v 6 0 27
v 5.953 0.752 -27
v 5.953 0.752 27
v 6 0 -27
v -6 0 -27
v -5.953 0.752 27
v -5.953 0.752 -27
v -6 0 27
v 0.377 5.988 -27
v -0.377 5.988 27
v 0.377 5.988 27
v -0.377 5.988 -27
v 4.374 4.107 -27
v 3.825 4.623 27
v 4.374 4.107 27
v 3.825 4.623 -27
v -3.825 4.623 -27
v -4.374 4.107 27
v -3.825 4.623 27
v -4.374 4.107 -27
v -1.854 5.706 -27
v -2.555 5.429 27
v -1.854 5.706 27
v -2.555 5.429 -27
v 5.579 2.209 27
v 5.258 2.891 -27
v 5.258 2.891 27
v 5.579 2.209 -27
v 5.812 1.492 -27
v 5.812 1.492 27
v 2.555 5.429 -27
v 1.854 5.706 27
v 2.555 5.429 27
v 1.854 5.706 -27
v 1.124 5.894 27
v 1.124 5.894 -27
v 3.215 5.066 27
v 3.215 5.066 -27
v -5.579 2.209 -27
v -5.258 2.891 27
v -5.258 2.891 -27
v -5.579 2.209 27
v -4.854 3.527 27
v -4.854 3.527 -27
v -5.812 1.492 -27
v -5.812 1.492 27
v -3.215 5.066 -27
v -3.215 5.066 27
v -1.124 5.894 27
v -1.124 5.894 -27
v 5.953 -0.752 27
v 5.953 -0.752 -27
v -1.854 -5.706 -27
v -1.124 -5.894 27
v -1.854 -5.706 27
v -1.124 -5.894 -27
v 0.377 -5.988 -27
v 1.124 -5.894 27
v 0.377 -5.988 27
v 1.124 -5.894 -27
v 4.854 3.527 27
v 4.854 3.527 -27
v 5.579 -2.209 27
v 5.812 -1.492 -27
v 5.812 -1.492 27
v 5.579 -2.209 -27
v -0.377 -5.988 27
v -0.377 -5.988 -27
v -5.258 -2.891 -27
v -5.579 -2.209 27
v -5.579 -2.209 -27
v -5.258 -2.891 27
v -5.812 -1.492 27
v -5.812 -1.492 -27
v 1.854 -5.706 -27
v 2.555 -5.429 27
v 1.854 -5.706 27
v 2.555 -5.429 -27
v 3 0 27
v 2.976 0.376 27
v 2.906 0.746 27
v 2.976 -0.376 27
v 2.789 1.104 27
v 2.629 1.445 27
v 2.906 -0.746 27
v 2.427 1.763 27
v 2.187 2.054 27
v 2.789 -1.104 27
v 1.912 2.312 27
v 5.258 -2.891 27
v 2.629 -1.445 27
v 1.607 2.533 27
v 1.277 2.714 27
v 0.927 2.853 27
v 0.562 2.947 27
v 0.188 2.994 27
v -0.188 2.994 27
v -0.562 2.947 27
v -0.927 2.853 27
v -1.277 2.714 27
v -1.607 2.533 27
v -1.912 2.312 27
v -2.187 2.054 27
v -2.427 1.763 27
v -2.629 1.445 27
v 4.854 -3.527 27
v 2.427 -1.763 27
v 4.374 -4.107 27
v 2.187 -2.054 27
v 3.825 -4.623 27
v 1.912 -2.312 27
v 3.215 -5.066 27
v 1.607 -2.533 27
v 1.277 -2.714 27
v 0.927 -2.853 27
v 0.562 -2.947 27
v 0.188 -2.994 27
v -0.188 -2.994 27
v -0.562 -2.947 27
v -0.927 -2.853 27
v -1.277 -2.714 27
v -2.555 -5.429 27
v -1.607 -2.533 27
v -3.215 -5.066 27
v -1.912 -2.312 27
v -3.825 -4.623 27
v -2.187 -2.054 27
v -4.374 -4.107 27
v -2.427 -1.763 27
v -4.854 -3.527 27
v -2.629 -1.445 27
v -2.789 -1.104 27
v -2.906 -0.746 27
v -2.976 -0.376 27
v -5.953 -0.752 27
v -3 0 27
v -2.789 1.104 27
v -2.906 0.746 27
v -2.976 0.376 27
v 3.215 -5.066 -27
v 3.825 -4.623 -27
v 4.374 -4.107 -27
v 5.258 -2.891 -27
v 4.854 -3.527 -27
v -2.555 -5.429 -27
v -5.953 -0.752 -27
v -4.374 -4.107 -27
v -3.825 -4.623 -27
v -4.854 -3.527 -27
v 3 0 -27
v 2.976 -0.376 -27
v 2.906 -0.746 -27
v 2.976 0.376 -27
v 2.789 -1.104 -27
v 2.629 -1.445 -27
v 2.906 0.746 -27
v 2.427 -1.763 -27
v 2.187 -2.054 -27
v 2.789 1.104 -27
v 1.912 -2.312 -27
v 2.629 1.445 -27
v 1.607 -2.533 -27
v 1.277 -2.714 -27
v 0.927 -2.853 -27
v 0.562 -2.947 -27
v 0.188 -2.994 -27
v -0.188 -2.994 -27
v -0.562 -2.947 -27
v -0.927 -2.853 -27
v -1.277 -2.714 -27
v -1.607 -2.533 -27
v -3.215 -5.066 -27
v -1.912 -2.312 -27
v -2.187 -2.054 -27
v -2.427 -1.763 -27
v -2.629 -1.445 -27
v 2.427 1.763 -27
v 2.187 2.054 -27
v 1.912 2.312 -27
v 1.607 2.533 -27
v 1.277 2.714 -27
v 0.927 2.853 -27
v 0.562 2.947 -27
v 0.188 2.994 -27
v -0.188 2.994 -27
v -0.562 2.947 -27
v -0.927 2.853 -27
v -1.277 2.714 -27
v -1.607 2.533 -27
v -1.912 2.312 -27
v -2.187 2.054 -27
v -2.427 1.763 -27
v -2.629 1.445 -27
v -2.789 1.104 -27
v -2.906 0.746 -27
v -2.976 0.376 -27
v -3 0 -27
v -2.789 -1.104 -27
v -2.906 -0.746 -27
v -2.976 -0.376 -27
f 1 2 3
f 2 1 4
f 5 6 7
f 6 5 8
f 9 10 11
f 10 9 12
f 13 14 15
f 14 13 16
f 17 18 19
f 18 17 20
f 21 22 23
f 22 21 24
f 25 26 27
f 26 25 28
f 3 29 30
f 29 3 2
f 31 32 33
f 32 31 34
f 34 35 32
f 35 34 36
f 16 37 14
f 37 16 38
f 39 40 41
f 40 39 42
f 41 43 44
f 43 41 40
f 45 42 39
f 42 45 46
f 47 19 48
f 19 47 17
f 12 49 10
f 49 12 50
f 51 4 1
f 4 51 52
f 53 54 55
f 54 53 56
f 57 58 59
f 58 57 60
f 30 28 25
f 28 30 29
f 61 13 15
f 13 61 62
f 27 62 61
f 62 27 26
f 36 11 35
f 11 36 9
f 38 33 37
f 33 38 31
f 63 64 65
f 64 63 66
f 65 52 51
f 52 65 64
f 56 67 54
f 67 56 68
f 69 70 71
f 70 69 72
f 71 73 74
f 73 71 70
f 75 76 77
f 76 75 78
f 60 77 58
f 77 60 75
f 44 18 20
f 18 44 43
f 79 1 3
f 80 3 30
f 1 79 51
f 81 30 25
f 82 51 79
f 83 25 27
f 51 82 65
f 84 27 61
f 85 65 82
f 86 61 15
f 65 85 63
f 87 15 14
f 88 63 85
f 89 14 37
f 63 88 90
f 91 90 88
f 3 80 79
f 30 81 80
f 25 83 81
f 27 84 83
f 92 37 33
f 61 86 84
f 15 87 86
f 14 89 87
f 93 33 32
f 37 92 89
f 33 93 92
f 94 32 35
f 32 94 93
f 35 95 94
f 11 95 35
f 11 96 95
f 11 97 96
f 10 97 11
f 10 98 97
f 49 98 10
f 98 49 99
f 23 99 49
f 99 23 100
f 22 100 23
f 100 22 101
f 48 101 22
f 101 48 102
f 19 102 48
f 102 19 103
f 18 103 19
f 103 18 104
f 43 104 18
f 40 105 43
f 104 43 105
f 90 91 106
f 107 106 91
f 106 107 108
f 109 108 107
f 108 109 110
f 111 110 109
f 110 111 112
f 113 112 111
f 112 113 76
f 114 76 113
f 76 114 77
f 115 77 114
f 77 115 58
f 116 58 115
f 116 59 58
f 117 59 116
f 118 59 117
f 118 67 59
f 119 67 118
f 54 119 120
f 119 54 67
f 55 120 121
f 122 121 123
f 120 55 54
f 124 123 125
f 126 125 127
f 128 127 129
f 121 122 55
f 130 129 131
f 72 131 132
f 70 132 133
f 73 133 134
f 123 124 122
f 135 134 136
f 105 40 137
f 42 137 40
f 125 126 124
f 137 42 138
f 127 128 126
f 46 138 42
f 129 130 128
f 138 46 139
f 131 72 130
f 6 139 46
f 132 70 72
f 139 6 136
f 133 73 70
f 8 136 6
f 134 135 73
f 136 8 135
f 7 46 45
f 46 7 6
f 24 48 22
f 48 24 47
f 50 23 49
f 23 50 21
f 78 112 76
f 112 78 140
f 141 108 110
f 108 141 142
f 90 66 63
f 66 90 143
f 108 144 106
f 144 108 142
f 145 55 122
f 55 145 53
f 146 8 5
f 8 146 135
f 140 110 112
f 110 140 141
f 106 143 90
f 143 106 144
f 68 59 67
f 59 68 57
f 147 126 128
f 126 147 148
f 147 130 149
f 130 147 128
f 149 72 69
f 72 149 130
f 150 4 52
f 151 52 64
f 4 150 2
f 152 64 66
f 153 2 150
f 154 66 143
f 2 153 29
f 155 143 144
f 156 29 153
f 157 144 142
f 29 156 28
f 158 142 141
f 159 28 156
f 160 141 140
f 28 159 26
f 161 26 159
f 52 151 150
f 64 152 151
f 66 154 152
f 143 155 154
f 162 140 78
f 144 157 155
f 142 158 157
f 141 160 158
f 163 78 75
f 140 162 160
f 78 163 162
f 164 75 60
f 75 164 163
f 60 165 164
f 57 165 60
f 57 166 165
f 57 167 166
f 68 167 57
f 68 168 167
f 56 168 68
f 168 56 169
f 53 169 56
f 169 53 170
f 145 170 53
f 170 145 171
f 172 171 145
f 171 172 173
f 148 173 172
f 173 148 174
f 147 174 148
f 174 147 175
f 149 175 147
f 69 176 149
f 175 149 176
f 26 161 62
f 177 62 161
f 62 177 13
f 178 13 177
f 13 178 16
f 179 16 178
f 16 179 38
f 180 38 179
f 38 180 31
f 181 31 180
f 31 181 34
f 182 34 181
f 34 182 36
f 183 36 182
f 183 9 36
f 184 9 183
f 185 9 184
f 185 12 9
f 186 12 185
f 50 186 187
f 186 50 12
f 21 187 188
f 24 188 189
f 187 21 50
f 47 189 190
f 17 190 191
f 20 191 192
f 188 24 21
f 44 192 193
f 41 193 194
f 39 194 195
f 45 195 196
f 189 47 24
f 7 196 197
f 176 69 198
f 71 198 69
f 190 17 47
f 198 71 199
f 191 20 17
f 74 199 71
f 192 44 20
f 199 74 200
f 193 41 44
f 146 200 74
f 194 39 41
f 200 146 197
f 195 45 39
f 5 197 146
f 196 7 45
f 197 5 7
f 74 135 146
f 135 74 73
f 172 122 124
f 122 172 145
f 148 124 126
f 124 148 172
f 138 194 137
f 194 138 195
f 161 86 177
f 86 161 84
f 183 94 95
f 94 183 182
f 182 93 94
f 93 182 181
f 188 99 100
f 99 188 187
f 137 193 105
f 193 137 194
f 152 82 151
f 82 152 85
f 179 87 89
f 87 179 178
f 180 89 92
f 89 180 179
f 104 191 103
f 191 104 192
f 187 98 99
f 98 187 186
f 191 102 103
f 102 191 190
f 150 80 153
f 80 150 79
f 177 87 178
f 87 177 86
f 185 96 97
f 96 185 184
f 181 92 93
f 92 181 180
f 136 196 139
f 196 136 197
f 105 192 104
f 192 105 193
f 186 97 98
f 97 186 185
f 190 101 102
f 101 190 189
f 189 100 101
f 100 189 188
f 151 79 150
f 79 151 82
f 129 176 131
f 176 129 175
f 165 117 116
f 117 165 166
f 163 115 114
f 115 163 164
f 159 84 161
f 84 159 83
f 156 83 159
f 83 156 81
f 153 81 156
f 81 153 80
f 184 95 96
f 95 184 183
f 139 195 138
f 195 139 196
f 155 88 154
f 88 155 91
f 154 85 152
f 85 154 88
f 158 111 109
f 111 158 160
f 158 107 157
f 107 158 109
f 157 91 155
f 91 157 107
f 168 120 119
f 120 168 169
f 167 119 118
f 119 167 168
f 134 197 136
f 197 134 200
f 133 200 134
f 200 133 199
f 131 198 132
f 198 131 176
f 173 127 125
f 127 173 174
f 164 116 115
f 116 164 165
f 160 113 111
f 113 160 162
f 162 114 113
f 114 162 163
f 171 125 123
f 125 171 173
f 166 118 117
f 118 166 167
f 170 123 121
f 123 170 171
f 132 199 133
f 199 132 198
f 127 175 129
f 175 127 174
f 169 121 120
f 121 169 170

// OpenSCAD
$fn = 50;


difference() {
	union() {
		translate(v = [0, 0, -27.0000000000]) {
			cylinder(h = 54, r = 6.0000000000);
		}
	}
	union() {
		translate(v = [0, 0, -100.0000000000]) {
			cylinder(h = 200, r = 3.0000000000);
		}
	}
}
